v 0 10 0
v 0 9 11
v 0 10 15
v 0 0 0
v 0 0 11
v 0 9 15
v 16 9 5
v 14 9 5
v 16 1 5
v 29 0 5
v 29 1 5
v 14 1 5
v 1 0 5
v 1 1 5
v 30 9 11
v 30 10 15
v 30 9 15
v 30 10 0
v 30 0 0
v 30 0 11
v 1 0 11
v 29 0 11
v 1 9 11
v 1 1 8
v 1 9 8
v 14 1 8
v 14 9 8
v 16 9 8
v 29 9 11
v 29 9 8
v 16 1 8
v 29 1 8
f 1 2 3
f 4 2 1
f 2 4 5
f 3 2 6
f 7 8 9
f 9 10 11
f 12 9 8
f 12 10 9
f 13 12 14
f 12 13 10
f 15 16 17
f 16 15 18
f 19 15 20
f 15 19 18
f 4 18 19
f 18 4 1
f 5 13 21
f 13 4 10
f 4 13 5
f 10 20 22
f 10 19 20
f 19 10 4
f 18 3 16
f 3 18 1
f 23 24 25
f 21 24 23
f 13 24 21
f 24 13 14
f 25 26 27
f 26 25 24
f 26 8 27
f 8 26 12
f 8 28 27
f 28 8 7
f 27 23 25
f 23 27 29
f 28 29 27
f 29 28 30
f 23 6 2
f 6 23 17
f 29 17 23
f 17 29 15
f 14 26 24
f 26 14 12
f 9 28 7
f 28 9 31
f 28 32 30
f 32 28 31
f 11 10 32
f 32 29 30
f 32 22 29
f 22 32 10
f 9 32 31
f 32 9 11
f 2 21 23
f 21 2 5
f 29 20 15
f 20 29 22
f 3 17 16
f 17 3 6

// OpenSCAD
// Base of the couch
cube([30, 10, 5]);

// Cushions
translate([1, 1, 5])
cube([13, 8, 3]);
translate([16, 1, 5])
cube([13, 8, 3]);

// Armrests
translate([0, 0, 5])
cube([1, 10, 6]);
translate([29, 0, 5])
cube([1, 10, 6]);

// Backrest
translate([0, 9, 5])
cube([30, 1, 10]);
